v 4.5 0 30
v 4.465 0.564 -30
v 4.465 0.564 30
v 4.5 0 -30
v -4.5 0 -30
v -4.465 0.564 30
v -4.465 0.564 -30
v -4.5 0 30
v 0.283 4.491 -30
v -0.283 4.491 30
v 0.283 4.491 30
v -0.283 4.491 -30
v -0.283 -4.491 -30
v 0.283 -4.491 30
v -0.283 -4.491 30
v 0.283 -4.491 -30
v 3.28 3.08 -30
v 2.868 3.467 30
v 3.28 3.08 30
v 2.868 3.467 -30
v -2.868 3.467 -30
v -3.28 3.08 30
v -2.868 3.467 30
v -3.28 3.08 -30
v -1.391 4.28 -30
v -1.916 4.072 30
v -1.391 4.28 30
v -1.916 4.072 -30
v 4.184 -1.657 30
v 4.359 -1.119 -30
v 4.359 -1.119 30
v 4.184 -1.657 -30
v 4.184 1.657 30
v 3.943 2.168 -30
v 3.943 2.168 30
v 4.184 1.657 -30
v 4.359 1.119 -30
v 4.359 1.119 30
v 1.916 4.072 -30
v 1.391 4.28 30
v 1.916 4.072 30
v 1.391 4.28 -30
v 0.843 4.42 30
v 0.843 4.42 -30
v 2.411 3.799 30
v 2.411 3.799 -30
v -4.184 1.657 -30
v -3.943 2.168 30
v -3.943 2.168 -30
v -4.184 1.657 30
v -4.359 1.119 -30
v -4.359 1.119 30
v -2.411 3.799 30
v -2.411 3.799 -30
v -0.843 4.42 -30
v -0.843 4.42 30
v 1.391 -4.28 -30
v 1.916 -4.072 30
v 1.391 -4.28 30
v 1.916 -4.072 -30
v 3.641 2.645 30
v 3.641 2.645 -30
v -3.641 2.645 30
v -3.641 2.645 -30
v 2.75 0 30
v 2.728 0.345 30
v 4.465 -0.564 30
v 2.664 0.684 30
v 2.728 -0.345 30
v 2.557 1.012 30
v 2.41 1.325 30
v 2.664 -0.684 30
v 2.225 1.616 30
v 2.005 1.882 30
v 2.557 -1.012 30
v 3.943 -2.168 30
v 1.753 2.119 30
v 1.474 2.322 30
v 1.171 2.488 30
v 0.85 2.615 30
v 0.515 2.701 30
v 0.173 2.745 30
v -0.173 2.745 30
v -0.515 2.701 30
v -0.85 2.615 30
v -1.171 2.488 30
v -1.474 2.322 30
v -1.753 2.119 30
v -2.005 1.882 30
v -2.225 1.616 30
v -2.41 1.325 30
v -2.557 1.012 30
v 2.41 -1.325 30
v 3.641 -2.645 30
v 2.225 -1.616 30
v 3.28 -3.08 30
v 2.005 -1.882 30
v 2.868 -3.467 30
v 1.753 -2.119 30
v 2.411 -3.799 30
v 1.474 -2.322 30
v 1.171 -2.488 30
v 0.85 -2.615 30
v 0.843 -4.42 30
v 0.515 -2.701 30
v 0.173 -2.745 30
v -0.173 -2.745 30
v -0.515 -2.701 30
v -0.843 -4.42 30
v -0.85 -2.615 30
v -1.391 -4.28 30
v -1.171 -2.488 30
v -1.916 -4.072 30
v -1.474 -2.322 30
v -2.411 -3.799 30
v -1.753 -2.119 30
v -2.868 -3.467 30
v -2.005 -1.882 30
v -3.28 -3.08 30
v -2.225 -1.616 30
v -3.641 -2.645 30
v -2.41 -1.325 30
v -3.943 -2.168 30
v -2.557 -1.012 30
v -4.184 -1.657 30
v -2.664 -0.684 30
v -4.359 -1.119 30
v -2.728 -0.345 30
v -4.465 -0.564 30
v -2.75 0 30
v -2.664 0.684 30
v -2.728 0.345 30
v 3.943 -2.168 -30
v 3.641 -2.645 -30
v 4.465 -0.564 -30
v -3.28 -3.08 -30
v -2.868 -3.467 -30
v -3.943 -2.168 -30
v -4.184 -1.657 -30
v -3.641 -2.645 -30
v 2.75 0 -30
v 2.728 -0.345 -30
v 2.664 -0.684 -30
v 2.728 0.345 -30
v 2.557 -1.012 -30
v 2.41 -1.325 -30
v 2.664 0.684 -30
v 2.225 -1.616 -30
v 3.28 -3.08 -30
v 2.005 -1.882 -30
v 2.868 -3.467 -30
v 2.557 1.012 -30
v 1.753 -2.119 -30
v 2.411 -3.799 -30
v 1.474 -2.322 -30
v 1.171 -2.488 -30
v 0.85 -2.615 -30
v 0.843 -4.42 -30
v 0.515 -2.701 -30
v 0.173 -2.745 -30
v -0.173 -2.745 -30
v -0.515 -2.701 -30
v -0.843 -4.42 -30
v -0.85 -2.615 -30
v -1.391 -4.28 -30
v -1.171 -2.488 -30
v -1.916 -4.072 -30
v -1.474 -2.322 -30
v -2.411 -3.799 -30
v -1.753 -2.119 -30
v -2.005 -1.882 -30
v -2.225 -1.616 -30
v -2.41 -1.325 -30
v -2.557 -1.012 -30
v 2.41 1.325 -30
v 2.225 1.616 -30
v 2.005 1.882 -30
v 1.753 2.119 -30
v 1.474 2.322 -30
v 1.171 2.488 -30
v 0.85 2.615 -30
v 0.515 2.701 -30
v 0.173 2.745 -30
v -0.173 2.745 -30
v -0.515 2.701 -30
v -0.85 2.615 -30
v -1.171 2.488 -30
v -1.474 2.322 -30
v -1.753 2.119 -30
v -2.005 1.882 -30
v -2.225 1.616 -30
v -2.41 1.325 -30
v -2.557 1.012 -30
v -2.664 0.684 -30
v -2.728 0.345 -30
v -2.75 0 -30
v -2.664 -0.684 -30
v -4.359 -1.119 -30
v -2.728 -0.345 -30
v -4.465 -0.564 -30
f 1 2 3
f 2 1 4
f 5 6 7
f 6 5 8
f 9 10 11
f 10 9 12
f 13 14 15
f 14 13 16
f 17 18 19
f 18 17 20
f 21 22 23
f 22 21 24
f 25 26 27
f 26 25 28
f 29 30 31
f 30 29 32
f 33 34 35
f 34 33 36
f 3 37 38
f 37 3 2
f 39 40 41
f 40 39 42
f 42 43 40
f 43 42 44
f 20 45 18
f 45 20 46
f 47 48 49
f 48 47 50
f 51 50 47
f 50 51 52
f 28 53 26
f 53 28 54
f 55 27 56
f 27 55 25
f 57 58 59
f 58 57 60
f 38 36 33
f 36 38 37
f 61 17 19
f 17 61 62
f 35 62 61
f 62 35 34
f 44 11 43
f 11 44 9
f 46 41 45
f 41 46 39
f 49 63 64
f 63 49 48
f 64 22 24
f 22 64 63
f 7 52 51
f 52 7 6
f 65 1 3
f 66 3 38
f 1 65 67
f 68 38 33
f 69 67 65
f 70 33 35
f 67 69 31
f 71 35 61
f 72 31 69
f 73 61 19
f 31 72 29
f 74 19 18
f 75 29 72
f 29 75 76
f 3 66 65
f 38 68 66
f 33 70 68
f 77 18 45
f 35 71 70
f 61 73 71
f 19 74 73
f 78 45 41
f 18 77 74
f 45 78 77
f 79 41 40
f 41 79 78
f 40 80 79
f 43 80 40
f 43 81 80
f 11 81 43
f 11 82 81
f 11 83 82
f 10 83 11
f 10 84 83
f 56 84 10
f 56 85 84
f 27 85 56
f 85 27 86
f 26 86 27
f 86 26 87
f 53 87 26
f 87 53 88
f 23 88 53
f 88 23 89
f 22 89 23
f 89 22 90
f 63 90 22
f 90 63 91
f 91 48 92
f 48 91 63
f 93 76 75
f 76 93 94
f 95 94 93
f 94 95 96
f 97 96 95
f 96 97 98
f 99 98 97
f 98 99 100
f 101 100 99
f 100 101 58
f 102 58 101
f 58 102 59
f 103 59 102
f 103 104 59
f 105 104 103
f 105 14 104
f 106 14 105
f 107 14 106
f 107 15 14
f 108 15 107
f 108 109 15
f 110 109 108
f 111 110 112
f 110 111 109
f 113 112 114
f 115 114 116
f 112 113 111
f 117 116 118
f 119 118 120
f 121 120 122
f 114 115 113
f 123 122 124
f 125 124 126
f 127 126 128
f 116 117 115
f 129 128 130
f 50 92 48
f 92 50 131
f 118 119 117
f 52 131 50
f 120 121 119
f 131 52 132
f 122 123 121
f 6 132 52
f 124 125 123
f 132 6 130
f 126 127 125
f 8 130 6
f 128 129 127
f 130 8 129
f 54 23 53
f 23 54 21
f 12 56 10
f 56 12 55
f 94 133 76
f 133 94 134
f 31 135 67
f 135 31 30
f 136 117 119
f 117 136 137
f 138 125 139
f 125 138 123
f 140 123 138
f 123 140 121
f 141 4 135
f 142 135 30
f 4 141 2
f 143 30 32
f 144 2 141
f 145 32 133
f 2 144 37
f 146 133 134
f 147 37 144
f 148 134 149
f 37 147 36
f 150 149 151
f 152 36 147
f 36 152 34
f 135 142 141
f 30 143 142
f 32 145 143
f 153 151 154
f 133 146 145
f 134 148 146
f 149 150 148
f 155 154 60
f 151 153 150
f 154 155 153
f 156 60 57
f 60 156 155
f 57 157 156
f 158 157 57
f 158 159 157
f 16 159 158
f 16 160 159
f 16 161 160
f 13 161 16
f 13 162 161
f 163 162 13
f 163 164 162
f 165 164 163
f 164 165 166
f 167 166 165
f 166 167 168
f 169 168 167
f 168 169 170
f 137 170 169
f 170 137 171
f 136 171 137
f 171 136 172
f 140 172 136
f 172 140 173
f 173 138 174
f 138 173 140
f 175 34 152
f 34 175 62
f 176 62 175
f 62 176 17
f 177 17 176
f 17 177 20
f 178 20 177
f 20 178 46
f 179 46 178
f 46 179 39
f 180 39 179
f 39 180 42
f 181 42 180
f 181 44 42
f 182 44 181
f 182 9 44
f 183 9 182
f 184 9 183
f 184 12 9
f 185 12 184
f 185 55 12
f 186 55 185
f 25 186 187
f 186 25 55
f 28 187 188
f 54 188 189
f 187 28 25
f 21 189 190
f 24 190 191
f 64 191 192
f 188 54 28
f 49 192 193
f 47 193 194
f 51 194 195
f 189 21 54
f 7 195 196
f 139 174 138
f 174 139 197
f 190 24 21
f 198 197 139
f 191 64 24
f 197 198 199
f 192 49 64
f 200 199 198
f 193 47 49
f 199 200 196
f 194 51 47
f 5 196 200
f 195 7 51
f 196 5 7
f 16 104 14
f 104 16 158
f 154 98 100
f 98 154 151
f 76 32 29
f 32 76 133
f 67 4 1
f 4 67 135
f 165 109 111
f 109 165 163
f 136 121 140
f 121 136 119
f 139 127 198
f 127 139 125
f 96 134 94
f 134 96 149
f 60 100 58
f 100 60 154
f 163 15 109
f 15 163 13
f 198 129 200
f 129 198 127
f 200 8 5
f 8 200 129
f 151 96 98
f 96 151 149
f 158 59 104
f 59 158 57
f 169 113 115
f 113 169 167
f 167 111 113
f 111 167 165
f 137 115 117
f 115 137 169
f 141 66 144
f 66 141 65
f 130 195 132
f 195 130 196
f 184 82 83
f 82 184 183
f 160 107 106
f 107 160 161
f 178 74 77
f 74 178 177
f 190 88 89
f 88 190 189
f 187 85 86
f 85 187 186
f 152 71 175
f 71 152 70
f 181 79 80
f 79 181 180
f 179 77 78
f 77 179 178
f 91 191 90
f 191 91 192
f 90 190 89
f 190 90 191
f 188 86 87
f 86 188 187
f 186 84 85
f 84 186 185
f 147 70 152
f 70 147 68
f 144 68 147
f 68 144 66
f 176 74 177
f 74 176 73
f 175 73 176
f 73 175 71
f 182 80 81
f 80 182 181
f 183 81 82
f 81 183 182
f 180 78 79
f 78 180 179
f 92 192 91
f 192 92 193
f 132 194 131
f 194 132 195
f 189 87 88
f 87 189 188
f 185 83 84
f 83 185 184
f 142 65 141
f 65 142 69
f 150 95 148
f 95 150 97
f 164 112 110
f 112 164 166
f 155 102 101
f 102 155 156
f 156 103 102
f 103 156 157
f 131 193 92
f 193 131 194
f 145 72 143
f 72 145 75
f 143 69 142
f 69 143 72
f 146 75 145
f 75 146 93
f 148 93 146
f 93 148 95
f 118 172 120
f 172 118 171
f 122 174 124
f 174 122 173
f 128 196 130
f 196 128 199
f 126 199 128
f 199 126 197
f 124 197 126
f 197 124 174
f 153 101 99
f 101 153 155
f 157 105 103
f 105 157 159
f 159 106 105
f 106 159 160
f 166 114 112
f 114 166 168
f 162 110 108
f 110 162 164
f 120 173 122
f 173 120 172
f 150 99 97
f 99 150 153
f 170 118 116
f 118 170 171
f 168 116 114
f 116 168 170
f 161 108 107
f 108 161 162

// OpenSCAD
$fn = 50;


difference() {
	union() {
		translate(v = [0, 0, -30.0000000000]) {
			cylinder(h = 60, r = 4.5000000000);
		}
	}
	union() {
		translate(v = [0, 0, -100.0000000000]) {
			cylinder(h = 200, r = 2.7500000000);
		}
	}
}
